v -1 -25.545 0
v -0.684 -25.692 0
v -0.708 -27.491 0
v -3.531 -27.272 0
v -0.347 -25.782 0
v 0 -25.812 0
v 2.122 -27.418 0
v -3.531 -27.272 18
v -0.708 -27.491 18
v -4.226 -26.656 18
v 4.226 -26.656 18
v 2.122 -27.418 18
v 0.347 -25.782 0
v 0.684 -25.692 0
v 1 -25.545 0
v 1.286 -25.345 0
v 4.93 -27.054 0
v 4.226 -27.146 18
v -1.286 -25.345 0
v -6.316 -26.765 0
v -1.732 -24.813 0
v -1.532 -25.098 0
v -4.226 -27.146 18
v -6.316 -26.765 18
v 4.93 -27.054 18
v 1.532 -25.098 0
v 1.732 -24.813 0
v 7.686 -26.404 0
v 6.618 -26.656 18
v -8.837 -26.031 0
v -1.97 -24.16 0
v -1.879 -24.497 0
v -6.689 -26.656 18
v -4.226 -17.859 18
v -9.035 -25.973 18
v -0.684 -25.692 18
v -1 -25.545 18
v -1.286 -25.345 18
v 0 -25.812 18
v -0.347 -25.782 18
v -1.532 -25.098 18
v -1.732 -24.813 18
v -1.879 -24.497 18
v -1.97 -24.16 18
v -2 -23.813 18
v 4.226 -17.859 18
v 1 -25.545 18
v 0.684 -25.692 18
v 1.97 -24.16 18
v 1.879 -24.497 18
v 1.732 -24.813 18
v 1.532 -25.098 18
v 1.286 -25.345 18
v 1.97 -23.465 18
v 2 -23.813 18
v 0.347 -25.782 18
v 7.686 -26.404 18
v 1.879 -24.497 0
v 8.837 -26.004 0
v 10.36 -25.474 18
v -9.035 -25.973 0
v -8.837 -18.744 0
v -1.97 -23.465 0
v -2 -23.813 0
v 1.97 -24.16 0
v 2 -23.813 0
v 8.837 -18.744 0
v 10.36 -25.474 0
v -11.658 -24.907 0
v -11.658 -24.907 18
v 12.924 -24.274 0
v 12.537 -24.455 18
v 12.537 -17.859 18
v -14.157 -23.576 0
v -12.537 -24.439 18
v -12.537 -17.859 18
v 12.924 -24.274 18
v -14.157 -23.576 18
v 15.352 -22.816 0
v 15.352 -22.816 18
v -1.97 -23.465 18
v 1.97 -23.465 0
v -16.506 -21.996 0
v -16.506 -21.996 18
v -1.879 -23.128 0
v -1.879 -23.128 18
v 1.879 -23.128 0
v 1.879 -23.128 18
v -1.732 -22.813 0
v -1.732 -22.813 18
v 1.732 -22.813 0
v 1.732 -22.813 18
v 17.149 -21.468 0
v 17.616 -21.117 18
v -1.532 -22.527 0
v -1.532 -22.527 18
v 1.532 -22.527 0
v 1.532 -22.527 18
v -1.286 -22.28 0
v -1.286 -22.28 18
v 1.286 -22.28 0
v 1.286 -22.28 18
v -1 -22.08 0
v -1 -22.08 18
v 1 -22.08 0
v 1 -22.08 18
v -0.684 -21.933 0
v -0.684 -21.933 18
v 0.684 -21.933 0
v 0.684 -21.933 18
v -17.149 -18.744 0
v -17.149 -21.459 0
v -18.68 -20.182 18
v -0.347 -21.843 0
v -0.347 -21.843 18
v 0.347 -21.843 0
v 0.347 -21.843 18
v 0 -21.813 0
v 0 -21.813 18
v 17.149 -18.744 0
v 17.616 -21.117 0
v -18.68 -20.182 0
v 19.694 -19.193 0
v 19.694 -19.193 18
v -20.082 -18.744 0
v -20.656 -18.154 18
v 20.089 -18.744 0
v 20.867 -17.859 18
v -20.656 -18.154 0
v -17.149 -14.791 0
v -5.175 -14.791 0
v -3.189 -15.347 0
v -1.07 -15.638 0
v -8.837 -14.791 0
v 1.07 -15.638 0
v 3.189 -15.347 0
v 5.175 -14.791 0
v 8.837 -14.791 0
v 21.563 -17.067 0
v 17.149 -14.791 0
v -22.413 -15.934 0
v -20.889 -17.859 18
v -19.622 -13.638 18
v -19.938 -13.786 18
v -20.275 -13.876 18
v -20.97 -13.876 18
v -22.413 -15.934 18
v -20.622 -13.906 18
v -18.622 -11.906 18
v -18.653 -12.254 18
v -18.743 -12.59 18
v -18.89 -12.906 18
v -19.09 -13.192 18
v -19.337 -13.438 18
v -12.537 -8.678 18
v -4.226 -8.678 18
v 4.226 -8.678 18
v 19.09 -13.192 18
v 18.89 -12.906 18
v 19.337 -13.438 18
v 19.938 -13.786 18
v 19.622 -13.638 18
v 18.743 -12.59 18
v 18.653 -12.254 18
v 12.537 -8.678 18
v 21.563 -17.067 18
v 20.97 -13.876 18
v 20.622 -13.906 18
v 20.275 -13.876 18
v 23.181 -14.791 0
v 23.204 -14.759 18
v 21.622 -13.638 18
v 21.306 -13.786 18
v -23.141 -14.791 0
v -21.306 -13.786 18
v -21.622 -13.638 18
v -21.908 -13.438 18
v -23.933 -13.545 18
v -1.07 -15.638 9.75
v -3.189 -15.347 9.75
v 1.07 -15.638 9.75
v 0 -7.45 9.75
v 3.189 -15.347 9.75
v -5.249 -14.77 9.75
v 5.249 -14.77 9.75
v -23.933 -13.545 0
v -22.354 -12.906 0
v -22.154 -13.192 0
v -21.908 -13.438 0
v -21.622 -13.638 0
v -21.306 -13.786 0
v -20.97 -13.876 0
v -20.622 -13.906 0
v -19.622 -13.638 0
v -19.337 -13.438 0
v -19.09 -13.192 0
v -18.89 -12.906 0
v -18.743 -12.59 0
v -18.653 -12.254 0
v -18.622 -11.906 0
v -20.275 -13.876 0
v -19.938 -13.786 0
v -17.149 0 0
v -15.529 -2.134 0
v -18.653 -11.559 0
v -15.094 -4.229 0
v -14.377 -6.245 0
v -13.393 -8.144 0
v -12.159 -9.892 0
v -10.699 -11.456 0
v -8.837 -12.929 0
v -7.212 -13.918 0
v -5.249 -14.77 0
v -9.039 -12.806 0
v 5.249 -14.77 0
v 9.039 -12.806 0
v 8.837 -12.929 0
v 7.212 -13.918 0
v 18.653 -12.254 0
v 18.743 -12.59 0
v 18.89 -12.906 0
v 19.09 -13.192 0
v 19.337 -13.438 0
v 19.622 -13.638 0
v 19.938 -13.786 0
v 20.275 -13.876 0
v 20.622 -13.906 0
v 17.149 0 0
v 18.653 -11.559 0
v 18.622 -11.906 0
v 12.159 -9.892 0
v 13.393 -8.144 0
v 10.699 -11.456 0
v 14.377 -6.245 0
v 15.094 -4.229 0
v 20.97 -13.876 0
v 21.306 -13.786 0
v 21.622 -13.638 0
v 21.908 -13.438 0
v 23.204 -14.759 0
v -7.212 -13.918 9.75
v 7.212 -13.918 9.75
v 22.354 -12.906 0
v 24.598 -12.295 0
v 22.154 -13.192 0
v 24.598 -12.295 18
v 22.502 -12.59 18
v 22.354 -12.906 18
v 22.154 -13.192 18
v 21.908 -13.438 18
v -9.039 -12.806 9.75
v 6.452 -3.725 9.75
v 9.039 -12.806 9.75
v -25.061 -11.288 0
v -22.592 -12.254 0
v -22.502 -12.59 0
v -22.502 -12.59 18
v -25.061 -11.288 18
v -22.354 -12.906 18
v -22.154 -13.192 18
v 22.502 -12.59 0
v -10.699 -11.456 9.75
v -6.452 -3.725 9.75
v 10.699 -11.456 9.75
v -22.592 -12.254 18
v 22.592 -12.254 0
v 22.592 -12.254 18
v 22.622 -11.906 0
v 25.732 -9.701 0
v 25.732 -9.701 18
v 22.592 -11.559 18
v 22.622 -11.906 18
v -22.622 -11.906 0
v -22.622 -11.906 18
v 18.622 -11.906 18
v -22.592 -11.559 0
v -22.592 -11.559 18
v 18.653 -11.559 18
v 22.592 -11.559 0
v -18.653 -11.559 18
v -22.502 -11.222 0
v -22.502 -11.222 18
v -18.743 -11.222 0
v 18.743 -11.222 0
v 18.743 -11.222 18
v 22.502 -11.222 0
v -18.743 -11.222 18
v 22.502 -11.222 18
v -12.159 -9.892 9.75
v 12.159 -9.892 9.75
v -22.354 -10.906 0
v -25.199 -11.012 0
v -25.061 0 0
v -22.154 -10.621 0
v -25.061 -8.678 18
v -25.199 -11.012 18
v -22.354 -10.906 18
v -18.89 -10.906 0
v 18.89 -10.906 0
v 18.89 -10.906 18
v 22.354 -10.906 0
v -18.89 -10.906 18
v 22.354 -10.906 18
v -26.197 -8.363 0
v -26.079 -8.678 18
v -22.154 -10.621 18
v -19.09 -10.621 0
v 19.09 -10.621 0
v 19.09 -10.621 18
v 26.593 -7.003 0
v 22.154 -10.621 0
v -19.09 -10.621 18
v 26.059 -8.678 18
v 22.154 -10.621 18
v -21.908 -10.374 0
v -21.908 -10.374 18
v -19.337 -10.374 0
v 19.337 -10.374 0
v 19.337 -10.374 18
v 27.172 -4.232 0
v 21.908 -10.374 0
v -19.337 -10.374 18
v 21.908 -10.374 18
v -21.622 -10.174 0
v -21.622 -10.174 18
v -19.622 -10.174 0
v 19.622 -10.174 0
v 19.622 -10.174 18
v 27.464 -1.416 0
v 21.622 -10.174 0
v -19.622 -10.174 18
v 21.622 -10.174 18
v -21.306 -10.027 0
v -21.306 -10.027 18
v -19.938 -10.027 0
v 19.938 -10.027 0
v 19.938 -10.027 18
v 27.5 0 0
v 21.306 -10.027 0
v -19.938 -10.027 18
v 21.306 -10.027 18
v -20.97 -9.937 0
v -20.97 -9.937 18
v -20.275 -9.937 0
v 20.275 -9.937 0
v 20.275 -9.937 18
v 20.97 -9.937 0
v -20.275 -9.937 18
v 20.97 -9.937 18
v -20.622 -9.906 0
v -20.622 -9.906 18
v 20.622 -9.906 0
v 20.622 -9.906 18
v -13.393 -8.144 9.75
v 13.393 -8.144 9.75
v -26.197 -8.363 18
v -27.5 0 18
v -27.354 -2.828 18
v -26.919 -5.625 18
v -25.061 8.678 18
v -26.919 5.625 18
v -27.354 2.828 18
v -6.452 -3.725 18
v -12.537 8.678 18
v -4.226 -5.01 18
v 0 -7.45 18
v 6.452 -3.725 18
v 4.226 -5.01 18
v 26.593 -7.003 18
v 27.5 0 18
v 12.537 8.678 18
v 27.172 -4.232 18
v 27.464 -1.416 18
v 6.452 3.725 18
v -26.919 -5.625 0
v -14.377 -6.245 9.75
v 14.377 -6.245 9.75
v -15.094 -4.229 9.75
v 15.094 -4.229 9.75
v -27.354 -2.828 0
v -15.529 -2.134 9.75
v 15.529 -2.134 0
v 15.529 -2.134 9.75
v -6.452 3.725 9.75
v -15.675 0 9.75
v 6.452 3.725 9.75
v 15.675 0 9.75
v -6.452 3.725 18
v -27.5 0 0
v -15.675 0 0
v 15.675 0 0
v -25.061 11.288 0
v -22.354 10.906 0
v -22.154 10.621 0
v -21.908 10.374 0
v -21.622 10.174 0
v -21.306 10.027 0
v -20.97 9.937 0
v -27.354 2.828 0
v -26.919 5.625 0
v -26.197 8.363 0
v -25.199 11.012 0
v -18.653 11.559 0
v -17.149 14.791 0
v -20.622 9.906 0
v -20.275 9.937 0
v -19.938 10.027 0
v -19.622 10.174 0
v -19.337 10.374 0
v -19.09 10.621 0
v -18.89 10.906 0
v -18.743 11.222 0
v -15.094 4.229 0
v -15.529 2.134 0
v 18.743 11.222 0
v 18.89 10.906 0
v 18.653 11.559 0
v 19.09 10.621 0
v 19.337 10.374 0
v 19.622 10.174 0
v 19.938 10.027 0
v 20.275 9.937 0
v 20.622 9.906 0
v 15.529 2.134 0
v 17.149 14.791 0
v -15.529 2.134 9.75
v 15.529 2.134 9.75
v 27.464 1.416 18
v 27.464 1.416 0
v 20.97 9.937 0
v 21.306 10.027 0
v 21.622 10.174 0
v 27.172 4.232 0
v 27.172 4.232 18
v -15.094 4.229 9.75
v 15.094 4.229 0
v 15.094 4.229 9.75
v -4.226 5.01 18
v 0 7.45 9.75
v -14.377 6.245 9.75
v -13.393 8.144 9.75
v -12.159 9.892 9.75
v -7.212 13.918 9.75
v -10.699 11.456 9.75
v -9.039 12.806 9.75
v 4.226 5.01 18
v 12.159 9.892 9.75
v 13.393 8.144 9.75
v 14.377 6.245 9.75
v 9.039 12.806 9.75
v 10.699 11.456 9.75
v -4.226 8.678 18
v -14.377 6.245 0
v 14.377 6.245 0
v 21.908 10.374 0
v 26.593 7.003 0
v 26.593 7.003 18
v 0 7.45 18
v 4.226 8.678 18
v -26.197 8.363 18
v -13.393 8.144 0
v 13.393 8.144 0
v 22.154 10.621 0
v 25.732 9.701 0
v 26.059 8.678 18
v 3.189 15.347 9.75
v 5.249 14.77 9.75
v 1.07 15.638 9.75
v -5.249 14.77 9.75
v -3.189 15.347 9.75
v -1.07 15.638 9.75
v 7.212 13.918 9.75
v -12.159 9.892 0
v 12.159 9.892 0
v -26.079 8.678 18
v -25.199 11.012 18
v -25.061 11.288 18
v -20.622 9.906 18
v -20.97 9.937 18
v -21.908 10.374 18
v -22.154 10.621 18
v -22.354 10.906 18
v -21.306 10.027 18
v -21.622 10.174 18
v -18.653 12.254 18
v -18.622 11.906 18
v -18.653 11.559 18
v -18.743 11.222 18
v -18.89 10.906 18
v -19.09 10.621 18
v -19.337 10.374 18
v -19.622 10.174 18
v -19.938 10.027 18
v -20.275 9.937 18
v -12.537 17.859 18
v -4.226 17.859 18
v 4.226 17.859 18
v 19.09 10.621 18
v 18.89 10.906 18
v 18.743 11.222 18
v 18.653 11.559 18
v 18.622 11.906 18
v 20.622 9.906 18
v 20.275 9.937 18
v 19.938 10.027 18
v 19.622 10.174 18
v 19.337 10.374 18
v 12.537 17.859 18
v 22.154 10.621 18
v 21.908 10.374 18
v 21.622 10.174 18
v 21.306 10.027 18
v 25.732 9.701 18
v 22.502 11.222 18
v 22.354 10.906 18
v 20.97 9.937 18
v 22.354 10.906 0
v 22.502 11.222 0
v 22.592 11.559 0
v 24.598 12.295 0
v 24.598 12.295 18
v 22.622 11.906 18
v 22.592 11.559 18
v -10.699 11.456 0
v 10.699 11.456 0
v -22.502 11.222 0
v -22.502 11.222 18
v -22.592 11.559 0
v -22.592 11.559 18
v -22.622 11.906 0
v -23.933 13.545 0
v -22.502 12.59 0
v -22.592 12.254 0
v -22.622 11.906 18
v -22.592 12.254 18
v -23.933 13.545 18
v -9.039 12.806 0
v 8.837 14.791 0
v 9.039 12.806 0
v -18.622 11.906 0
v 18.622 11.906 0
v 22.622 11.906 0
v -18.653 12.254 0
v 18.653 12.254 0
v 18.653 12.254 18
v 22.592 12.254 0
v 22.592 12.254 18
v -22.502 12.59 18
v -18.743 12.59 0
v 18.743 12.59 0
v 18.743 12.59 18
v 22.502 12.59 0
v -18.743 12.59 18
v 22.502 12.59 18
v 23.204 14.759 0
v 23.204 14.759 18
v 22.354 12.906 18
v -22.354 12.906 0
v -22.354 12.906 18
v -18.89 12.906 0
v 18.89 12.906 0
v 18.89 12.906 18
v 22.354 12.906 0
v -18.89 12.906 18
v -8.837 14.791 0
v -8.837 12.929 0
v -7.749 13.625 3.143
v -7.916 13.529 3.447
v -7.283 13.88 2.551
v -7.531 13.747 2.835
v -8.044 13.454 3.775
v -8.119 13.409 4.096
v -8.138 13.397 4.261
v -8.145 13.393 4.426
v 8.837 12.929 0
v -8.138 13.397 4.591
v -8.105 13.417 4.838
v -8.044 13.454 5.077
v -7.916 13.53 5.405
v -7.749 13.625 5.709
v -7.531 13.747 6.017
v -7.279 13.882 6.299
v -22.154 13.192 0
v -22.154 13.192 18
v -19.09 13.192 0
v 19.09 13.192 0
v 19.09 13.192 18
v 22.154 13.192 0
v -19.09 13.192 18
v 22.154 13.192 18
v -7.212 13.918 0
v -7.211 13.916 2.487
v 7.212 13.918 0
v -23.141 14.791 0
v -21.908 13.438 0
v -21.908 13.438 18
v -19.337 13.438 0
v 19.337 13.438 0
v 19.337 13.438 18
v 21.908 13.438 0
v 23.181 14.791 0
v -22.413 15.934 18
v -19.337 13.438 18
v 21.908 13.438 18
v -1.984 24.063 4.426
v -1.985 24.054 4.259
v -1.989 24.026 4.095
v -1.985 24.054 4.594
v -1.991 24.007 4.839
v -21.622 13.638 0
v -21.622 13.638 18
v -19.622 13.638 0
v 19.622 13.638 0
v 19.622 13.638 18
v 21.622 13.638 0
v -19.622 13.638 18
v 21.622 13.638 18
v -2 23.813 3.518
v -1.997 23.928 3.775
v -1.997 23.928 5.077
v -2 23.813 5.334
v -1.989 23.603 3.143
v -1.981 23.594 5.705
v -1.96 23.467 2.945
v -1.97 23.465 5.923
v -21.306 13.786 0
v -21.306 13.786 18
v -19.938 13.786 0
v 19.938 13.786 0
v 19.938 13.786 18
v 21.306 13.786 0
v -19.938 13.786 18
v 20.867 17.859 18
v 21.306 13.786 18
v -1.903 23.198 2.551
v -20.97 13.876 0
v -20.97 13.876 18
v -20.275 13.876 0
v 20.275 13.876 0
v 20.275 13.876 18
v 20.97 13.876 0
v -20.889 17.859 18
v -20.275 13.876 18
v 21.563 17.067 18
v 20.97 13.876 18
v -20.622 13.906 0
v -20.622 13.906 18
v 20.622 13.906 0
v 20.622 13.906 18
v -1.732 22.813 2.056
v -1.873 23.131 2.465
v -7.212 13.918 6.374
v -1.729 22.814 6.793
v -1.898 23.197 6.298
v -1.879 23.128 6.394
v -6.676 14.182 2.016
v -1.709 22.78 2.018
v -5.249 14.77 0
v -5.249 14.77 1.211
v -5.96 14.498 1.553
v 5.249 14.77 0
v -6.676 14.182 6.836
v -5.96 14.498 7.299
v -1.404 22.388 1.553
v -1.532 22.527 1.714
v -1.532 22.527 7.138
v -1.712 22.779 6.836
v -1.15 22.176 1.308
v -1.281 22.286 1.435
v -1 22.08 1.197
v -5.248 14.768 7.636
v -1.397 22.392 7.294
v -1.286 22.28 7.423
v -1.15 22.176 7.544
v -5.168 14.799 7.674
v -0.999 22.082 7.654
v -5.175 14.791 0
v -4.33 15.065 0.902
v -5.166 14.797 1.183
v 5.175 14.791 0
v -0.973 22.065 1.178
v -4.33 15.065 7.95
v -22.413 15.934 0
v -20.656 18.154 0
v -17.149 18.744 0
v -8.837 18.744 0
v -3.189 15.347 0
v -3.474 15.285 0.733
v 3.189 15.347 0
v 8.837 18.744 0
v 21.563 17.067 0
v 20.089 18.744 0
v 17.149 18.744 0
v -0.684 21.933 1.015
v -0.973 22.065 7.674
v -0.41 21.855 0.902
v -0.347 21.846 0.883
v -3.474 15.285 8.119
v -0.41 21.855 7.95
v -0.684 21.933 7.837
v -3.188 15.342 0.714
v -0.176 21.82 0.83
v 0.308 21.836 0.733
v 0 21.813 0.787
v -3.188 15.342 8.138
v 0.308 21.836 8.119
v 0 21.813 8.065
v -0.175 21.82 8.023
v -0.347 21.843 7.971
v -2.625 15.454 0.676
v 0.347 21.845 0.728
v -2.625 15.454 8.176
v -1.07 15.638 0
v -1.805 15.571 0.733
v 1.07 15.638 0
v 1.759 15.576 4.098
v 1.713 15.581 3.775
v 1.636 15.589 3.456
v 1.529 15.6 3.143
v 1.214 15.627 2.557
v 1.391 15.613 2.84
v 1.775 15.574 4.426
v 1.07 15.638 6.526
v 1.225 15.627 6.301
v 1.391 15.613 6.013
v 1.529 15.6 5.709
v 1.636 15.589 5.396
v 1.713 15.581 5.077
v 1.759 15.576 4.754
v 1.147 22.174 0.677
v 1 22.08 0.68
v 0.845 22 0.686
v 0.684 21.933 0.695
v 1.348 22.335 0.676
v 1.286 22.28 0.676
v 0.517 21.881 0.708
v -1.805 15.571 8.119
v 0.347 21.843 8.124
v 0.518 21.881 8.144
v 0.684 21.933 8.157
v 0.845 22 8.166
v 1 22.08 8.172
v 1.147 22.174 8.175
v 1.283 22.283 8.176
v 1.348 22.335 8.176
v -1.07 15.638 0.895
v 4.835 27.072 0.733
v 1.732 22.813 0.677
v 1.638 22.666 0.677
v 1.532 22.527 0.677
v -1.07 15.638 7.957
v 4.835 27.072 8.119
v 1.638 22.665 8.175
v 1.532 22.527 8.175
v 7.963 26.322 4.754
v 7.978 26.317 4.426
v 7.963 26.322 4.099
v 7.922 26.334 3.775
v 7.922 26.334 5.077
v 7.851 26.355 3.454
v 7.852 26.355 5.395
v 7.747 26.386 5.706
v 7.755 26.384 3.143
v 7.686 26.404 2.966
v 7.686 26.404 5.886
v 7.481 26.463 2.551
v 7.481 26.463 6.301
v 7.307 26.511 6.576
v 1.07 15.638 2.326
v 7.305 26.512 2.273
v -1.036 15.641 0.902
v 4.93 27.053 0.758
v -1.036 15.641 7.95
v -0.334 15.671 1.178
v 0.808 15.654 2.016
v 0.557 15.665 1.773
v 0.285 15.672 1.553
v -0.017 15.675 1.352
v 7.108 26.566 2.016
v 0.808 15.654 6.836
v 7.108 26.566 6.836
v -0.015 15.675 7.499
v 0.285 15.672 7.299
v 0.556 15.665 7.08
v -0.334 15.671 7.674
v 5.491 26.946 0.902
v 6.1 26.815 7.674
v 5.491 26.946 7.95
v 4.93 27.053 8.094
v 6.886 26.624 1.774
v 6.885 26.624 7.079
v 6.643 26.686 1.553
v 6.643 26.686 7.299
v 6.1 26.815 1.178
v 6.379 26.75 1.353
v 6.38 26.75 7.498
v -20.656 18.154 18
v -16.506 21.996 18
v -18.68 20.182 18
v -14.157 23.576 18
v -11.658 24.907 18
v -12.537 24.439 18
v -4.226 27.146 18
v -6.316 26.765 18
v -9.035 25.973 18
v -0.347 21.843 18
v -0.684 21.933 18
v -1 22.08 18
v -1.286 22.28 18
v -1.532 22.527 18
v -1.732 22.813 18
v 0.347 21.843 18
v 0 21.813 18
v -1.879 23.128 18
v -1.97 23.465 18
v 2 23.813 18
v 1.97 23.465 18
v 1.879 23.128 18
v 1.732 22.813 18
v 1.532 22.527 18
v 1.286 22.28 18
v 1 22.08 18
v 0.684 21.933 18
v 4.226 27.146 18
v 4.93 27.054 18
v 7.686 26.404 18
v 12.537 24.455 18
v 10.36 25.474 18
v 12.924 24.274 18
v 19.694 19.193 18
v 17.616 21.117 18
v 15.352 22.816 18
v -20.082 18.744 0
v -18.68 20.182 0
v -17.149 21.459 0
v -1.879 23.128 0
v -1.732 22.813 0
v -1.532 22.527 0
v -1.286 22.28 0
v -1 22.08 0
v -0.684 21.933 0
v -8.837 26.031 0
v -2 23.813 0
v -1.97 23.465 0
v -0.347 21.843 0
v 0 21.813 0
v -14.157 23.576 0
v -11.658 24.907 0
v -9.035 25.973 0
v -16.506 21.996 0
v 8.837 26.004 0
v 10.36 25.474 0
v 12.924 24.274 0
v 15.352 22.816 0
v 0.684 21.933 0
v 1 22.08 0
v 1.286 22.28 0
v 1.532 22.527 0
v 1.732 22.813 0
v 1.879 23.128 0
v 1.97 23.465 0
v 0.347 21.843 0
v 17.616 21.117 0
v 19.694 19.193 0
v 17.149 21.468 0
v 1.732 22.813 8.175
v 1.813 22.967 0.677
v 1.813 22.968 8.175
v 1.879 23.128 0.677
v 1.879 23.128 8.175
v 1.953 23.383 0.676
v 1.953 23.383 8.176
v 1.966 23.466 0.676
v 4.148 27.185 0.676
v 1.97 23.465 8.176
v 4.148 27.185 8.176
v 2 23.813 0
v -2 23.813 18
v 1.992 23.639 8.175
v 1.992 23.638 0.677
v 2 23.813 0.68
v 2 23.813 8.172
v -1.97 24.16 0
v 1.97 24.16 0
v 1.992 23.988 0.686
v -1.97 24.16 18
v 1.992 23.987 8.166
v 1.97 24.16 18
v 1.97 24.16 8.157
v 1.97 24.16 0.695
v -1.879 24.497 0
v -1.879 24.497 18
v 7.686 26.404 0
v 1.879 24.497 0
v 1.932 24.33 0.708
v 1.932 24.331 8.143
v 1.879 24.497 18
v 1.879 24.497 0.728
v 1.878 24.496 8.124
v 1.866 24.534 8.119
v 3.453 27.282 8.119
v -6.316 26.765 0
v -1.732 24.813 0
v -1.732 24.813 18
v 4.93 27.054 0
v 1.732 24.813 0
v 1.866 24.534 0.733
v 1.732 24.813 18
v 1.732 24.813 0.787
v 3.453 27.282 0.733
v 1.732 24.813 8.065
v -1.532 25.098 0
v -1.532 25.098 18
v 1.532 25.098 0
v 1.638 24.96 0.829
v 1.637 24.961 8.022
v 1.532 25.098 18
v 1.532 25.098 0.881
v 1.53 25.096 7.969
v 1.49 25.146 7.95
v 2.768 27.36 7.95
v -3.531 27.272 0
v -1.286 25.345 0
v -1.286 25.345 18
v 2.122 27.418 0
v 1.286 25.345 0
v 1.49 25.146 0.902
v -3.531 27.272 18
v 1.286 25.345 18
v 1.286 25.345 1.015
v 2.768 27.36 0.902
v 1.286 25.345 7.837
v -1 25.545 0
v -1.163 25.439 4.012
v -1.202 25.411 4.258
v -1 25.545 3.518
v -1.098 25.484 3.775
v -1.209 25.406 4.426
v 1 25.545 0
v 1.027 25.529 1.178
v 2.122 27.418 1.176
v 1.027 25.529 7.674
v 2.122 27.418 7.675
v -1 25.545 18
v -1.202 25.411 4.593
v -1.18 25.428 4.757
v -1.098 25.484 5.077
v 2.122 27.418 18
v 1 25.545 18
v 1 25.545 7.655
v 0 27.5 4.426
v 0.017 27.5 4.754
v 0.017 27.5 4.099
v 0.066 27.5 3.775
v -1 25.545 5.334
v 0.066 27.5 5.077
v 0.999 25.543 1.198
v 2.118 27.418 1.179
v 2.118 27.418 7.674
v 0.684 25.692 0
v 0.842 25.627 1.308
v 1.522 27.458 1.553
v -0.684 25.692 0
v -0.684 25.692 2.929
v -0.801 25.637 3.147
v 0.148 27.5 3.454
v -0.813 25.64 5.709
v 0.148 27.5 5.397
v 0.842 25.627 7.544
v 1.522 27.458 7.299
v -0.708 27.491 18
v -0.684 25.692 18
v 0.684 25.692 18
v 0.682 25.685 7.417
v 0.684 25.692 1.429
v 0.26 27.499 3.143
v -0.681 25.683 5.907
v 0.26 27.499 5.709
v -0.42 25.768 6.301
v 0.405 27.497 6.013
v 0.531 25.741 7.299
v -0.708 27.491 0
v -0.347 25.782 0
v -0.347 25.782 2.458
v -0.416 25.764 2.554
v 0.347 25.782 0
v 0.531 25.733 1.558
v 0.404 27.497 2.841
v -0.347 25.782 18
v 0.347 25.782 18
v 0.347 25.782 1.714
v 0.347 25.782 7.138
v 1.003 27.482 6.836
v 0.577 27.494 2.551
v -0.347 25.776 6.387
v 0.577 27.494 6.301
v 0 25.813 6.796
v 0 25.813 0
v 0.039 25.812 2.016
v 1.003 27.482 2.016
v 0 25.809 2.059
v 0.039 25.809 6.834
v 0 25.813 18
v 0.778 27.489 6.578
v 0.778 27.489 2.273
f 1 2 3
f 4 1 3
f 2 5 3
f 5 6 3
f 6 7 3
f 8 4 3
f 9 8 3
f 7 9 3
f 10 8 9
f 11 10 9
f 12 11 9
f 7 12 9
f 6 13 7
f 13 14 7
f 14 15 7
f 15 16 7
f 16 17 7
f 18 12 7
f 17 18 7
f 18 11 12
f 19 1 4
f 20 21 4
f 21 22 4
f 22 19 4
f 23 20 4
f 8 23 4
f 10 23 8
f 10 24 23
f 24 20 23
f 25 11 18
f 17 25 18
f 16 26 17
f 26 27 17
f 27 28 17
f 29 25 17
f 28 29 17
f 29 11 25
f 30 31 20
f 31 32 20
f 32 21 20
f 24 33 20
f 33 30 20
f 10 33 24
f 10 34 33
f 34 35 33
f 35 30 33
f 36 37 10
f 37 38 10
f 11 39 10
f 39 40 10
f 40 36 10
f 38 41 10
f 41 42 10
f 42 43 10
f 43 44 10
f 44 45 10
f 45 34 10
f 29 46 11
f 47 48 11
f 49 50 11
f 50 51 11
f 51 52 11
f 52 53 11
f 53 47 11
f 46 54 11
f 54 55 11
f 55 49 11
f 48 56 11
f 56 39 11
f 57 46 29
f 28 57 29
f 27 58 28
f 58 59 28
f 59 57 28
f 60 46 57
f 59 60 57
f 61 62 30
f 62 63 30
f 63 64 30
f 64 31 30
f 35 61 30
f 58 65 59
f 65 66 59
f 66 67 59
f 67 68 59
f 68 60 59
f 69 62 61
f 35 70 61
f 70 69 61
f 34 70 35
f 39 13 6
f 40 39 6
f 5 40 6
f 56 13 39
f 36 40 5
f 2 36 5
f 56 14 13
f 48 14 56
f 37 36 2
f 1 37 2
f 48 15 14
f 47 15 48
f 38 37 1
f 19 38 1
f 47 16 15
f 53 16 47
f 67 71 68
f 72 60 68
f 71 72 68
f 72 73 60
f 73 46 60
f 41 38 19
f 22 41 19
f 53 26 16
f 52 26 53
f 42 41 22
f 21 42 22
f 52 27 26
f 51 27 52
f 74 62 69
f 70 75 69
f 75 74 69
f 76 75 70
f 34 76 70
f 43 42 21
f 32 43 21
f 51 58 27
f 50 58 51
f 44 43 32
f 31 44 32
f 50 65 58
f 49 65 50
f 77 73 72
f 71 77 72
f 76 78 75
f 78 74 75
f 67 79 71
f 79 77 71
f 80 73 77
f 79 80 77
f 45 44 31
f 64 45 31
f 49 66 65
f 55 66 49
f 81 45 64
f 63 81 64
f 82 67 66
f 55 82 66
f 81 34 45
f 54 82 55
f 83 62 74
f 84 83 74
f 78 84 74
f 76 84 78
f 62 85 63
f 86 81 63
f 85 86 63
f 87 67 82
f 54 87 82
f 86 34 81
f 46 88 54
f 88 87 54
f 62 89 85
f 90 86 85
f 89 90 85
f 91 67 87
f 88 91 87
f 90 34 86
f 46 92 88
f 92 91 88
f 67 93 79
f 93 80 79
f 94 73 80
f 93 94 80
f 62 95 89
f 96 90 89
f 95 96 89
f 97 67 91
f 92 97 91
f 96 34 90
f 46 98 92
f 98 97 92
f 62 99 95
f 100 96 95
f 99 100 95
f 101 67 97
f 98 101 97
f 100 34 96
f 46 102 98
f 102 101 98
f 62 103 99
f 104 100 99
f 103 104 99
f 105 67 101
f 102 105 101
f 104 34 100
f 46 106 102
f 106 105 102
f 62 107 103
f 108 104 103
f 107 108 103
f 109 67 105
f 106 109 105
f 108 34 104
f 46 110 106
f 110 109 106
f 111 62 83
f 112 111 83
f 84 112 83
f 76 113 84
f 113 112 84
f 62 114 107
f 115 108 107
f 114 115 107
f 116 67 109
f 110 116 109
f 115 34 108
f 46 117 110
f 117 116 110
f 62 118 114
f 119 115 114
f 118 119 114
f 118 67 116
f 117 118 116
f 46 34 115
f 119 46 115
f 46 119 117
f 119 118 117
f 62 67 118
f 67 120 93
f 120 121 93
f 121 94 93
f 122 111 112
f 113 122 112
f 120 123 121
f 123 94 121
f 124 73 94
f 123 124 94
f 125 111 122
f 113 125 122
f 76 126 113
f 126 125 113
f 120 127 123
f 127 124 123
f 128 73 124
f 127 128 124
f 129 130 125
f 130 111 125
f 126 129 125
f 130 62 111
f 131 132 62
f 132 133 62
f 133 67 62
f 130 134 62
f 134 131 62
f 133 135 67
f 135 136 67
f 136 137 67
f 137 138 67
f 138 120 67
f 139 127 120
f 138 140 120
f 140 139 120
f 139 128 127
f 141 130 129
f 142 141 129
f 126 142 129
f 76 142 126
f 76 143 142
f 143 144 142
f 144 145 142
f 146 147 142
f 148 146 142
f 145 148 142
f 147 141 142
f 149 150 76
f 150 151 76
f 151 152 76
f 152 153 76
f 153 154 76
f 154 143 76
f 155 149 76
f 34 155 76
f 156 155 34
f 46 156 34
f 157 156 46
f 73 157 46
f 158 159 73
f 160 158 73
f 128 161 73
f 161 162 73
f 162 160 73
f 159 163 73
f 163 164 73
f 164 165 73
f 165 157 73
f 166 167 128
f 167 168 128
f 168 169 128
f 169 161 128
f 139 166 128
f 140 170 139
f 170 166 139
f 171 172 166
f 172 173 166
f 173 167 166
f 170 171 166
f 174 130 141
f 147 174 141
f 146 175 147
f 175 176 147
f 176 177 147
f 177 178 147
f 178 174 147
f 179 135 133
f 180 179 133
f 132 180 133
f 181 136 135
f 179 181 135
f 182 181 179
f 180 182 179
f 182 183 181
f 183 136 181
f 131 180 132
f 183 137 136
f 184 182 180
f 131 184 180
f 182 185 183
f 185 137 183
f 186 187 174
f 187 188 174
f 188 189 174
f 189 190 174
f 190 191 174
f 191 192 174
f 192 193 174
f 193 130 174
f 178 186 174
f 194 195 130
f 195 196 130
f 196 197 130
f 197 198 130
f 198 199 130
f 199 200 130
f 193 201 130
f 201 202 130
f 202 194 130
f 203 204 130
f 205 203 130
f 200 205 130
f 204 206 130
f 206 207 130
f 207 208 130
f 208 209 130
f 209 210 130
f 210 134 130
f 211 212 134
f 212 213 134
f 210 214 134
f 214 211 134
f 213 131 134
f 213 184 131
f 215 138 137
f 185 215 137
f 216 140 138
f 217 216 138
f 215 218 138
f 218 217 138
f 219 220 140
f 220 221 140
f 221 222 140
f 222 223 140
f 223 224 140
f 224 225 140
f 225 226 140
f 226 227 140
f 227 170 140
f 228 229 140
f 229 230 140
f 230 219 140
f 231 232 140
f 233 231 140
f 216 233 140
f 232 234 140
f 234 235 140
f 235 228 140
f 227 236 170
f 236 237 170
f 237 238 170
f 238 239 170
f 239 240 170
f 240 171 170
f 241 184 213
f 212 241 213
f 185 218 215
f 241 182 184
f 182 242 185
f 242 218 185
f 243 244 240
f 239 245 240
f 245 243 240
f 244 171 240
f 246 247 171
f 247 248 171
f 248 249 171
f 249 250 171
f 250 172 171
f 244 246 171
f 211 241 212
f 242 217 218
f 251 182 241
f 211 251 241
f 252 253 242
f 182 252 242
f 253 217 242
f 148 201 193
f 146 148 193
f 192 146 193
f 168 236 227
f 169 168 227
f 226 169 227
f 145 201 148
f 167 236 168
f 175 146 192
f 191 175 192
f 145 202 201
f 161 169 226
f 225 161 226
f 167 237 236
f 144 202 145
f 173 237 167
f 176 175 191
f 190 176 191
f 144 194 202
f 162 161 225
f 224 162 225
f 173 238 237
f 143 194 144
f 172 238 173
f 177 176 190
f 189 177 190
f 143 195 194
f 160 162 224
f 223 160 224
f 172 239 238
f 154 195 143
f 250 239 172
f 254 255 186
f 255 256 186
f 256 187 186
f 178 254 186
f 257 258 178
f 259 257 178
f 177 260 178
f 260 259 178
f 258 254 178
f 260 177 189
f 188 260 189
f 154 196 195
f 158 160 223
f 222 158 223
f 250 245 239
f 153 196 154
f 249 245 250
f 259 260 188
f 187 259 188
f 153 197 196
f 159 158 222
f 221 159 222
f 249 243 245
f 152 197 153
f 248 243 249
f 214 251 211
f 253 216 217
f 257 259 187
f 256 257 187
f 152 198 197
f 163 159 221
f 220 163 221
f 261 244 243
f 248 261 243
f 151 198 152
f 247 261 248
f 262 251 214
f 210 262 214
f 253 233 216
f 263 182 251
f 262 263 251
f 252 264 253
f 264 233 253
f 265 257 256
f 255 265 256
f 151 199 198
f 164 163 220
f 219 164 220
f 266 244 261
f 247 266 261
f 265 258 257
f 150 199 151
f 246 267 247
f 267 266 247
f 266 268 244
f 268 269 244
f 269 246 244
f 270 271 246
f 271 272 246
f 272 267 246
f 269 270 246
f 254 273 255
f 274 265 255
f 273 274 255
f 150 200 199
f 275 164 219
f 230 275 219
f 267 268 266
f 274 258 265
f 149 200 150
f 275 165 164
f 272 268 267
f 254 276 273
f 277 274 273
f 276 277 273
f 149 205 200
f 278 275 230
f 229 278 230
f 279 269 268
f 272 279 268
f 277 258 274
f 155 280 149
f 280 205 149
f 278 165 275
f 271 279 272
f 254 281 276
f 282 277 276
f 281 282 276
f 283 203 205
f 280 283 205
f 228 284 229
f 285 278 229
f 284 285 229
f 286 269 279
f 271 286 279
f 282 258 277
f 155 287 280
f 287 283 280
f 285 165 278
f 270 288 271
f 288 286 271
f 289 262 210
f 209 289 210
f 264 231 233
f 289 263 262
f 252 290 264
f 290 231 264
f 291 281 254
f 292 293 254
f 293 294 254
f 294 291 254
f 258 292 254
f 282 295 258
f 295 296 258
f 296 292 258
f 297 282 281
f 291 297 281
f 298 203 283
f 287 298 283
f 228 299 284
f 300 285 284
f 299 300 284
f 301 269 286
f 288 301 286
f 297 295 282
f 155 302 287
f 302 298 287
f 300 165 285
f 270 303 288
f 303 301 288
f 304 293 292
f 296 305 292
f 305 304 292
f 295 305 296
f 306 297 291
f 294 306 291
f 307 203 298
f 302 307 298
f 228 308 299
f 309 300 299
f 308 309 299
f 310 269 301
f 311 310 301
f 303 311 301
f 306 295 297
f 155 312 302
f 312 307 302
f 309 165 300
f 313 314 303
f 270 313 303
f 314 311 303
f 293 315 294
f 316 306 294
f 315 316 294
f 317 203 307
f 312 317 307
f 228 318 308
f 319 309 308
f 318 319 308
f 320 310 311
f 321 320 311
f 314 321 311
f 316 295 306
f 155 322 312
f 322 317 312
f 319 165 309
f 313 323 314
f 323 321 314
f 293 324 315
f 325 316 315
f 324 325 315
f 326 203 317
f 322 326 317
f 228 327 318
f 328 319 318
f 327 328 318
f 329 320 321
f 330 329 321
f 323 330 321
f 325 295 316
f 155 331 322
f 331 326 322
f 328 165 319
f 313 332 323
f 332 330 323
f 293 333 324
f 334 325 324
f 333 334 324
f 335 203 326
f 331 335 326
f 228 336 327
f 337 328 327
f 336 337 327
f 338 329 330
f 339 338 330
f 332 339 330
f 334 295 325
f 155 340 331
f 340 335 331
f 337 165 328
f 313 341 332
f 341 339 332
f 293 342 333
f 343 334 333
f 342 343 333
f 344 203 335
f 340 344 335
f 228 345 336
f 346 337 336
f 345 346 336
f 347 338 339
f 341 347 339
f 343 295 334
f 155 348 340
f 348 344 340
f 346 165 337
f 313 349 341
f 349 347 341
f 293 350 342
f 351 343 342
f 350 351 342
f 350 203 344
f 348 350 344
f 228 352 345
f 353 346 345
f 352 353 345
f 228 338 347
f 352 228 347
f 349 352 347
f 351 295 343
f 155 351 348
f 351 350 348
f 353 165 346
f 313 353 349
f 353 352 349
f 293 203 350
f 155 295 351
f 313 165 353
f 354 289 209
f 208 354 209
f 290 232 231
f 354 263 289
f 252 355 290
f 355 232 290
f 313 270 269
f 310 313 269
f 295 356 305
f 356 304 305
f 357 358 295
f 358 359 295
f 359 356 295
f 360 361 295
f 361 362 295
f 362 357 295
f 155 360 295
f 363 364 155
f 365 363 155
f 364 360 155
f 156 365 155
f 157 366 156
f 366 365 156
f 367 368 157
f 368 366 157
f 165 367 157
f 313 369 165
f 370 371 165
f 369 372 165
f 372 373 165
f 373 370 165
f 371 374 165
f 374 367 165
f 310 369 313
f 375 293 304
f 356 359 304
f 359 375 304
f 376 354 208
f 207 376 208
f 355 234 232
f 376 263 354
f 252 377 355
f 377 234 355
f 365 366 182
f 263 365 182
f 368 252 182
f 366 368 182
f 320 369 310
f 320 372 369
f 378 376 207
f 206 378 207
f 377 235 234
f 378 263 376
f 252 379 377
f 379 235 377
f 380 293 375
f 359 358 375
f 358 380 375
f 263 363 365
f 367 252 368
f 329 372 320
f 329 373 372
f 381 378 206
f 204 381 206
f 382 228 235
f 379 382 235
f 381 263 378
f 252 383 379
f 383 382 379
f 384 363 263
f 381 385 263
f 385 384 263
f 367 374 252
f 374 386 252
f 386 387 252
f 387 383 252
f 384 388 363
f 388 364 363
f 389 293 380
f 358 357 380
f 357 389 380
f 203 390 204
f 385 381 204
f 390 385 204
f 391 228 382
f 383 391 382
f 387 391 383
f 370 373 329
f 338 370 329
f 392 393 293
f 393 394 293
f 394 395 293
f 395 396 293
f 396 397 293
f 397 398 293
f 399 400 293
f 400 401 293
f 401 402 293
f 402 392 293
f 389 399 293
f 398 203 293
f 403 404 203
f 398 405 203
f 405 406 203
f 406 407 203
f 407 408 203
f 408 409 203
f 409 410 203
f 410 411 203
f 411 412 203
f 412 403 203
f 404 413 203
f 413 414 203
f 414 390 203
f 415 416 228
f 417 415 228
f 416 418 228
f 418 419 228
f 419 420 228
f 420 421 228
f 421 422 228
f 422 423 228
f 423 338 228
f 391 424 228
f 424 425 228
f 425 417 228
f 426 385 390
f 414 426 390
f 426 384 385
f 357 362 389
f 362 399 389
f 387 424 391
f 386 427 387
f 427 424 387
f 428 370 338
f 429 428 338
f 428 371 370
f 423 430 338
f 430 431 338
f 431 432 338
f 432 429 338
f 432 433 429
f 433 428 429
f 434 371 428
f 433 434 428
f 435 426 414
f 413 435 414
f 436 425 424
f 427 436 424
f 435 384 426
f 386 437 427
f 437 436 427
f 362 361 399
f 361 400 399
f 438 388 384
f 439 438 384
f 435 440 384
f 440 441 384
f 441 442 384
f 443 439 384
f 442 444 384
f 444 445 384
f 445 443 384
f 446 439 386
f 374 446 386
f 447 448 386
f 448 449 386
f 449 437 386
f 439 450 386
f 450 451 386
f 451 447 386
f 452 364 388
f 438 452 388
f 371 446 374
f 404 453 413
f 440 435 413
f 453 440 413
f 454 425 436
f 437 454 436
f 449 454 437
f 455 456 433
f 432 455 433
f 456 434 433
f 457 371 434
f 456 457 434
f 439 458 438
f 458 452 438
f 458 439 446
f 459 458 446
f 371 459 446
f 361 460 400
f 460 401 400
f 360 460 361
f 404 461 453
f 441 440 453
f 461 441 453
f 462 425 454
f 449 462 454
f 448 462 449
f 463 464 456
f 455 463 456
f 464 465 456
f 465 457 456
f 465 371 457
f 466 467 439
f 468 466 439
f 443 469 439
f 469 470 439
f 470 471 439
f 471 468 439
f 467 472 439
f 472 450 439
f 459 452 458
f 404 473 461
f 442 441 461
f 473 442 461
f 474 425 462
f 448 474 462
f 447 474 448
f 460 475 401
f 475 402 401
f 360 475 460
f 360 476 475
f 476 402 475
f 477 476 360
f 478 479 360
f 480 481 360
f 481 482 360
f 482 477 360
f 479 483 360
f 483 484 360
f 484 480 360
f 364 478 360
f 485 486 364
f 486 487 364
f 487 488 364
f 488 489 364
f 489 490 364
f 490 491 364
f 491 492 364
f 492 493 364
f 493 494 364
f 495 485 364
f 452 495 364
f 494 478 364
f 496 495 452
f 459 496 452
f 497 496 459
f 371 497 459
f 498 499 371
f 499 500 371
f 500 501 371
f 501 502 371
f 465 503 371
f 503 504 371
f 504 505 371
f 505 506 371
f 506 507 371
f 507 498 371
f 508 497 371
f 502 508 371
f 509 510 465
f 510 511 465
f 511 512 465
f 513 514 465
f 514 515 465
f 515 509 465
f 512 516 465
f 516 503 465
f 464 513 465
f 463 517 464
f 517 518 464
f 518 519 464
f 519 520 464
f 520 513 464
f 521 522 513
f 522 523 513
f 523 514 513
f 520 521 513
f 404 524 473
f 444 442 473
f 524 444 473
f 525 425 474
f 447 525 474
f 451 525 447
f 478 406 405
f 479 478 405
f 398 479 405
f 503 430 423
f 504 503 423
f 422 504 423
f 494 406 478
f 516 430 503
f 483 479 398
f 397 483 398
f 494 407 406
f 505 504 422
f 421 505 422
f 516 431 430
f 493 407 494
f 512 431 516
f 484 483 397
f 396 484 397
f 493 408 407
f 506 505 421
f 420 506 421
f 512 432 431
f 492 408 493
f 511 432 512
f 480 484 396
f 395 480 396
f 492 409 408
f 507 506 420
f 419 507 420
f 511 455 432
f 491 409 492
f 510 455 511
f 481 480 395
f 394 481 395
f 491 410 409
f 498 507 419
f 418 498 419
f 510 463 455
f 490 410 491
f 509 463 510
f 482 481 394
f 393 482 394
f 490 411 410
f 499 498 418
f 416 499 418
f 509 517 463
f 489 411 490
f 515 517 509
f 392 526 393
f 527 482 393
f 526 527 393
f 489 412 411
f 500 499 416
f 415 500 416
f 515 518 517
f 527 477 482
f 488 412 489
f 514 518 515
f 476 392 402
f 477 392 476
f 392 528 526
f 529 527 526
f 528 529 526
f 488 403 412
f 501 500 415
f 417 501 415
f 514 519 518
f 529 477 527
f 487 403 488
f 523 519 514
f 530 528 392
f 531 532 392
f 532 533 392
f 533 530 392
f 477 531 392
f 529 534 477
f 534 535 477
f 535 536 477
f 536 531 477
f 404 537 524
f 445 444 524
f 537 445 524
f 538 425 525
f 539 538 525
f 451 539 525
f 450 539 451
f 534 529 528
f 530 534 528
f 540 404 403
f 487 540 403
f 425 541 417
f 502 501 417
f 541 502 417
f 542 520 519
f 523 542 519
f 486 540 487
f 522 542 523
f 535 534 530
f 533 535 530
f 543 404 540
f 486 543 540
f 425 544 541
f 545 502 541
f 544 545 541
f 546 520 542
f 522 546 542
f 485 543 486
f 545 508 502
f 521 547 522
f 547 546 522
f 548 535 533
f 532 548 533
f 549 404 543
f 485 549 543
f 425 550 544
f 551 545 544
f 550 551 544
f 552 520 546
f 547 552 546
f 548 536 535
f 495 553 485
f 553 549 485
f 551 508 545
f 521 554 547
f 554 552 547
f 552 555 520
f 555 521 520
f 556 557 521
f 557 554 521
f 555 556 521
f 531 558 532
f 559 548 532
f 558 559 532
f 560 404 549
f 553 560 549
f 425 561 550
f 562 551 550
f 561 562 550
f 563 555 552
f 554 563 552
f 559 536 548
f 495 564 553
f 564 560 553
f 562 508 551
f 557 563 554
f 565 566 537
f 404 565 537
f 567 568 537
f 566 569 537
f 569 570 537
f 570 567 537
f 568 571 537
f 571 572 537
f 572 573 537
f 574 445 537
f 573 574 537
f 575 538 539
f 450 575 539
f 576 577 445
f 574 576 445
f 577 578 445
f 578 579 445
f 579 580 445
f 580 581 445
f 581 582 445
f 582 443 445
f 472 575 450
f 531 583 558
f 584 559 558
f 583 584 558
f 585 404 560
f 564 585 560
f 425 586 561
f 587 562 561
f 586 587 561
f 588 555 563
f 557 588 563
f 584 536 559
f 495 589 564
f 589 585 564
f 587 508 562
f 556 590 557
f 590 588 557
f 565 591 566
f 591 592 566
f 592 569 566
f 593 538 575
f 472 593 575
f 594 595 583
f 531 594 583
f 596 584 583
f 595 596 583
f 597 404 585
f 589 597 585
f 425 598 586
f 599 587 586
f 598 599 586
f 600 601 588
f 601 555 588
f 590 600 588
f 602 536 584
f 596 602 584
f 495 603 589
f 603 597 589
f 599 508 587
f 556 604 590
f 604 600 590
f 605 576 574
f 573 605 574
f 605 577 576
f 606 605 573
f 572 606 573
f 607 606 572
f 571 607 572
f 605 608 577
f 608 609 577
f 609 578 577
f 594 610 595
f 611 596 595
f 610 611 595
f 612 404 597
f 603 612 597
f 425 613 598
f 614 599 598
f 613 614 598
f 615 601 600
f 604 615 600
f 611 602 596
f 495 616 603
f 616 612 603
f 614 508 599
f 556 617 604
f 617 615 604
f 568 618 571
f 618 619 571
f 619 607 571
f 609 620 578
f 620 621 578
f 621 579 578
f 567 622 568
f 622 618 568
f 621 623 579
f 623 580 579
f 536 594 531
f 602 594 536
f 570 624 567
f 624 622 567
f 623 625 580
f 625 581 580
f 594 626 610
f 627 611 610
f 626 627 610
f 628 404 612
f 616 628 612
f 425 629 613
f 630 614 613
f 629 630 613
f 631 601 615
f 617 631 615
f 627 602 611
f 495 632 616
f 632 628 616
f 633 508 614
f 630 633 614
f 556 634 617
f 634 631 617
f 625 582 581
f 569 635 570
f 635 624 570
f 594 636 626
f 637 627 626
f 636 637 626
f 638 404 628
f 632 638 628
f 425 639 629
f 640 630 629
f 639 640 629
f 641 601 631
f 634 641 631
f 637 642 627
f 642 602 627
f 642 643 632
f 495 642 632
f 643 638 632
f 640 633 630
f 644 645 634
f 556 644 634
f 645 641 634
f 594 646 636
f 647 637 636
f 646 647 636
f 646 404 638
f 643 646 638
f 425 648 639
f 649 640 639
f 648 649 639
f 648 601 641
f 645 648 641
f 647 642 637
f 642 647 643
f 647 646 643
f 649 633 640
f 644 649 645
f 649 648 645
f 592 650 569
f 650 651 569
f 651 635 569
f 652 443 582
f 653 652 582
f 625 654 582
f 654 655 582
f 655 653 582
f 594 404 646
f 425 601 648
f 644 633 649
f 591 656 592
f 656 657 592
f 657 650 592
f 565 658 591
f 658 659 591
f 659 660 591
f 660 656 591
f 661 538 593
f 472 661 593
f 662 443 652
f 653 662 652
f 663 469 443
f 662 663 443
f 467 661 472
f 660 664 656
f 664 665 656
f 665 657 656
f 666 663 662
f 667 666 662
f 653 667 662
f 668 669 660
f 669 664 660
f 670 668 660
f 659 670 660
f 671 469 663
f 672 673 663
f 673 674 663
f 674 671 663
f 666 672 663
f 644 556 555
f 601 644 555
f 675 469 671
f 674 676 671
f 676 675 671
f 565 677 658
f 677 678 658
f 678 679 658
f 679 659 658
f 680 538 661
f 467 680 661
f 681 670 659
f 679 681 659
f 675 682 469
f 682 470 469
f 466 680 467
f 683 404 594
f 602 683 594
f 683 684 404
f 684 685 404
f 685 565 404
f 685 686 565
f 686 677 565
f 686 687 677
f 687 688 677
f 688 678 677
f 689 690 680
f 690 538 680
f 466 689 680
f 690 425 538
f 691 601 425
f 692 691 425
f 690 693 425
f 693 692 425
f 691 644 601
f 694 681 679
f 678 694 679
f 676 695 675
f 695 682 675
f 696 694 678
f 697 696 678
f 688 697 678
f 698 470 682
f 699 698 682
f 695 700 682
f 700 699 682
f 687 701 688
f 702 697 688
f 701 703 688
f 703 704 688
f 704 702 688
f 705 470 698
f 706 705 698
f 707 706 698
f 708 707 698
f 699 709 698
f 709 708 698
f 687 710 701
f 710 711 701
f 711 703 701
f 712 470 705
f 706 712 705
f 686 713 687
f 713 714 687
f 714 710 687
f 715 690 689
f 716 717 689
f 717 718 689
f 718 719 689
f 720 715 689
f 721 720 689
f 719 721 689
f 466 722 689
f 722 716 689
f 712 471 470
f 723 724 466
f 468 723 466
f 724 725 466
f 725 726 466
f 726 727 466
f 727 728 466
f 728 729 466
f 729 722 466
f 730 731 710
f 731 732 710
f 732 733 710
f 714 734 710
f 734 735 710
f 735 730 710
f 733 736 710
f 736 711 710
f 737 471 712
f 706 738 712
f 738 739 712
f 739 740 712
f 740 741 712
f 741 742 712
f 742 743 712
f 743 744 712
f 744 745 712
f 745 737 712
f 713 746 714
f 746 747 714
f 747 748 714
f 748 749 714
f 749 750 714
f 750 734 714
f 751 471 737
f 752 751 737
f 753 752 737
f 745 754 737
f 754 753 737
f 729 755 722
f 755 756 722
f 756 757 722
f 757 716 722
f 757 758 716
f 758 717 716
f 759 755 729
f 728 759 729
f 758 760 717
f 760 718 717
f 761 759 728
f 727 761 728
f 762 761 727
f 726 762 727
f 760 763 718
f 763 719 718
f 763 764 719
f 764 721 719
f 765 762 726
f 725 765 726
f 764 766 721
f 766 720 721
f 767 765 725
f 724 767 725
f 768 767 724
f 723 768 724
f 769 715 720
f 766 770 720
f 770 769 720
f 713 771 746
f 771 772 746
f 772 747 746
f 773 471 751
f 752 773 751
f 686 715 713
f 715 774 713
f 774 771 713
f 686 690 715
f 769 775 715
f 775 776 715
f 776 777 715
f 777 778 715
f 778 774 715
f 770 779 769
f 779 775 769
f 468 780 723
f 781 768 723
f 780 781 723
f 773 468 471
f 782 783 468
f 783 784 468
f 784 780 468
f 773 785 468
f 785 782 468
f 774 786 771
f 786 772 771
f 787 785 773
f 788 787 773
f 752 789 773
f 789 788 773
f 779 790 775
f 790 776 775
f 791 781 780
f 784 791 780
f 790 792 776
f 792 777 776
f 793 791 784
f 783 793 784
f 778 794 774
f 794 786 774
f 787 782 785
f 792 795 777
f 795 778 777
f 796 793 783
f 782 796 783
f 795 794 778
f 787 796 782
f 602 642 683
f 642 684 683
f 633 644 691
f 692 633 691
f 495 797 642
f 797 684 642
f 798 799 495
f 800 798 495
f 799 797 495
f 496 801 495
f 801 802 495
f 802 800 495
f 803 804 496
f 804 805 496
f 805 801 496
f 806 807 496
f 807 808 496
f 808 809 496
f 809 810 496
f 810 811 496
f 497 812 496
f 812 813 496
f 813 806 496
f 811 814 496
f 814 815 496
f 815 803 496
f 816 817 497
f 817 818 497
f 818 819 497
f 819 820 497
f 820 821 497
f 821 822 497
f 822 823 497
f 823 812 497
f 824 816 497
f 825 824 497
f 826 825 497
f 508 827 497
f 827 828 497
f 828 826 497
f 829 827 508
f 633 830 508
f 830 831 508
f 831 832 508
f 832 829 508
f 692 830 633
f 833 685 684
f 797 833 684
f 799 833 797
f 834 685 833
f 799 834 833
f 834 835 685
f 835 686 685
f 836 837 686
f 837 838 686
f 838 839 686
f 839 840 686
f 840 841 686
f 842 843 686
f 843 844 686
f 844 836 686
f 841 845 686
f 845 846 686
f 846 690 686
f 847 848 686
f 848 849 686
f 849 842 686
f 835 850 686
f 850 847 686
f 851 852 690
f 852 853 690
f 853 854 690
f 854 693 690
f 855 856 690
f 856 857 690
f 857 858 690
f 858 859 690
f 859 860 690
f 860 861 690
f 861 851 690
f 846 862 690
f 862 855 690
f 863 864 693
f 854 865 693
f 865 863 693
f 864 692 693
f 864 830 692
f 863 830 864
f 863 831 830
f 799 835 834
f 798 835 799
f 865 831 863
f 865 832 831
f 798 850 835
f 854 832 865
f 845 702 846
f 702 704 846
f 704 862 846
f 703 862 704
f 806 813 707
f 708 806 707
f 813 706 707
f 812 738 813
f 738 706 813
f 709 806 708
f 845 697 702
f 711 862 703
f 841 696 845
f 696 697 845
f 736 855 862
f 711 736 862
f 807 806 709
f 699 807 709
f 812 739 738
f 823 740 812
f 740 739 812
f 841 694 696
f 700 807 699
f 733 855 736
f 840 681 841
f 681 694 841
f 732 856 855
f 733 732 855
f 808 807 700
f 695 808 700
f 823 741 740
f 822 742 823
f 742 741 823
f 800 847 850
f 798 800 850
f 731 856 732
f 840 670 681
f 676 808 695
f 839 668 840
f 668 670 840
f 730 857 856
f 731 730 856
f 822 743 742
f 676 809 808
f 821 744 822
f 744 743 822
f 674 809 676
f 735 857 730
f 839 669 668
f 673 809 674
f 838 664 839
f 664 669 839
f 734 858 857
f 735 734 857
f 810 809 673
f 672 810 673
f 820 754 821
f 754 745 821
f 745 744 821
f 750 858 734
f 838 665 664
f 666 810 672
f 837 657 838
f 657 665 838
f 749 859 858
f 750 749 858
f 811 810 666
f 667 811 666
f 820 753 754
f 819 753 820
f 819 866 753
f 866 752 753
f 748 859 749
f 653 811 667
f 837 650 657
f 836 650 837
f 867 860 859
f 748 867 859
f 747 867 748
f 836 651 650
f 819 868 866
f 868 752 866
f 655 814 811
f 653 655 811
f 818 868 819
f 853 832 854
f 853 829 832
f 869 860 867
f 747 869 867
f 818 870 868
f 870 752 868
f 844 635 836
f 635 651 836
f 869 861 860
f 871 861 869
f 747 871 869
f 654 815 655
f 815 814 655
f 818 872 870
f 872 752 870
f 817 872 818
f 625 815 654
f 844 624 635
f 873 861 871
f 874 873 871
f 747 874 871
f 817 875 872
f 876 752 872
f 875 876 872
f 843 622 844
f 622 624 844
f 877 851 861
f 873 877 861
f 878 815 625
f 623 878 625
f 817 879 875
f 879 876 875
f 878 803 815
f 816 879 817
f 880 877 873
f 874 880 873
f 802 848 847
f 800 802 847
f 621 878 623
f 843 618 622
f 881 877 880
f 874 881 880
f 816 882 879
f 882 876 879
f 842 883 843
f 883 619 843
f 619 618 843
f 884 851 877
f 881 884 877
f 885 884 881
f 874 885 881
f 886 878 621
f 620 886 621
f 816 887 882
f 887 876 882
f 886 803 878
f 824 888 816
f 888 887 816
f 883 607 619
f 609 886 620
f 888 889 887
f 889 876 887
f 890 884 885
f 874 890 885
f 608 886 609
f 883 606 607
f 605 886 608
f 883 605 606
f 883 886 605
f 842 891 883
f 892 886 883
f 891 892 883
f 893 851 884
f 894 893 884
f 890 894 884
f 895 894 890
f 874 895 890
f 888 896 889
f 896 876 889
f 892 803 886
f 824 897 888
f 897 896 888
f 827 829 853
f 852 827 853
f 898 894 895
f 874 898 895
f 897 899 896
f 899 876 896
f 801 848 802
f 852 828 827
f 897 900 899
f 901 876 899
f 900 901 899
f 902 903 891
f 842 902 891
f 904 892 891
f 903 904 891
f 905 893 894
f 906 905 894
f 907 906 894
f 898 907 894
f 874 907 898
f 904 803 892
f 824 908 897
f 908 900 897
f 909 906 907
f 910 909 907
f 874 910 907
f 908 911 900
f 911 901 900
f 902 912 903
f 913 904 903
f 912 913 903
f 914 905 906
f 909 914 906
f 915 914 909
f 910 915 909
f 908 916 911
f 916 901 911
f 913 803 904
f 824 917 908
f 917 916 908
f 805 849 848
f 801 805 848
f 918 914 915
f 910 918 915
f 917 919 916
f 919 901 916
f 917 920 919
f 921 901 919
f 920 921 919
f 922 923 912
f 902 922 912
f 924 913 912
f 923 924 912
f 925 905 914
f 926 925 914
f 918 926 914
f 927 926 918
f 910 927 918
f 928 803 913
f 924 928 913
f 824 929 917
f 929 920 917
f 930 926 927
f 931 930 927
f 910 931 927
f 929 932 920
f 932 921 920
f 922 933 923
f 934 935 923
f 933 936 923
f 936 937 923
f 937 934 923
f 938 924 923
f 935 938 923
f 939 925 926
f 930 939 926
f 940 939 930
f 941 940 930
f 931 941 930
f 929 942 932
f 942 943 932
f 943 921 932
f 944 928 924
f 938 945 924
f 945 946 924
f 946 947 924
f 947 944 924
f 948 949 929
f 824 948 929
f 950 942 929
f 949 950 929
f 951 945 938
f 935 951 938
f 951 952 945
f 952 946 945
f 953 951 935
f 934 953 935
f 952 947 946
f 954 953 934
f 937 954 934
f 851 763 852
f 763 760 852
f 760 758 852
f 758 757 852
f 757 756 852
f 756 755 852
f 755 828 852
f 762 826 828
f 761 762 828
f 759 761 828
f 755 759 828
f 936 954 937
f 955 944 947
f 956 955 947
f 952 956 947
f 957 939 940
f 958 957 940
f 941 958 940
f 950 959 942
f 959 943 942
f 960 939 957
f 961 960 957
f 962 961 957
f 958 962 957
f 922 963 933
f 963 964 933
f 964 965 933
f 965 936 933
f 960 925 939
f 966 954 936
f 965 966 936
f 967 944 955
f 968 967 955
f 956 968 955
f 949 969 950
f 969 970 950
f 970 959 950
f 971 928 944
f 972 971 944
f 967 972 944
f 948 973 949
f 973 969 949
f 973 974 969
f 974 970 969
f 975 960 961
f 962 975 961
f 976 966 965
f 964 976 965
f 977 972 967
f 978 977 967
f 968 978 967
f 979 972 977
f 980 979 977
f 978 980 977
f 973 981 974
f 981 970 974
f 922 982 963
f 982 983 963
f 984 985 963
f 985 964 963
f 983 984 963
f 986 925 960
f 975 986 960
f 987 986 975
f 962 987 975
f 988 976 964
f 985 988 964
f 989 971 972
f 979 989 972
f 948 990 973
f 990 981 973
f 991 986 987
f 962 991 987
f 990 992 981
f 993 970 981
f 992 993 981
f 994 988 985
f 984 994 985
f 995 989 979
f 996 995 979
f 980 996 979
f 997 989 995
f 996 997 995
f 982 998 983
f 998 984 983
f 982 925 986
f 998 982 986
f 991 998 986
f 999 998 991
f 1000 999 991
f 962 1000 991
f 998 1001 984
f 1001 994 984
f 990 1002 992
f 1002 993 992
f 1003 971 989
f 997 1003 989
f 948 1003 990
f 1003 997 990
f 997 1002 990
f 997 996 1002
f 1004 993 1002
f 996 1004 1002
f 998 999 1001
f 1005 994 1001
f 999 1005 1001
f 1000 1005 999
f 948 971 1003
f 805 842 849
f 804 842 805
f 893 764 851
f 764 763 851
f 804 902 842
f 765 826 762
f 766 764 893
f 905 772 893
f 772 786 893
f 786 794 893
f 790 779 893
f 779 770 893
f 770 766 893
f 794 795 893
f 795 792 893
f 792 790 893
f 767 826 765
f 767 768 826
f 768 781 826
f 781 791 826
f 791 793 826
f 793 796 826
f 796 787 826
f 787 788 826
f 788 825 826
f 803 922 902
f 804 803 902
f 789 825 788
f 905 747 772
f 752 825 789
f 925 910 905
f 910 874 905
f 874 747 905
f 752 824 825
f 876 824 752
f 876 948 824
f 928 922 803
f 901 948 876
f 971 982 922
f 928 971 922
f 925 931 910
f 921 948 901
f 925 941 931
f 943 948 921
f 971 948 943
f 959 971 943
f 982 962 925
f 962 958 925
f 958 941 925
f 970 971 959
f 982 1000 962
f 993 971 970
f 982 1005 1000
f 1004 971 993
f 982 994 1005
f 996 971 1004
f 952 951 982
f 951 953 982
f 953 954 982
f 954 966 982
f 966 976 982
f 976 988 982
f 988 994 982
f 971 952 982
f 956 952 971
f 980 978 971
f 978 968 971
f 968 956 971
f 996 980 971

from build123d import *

# Parameters (mm, degrees)
SKETCH1_R           = 27.5
SKETCH1_R_2         = 2
BOSS_EXTRUDE1_DEPTH = 18
CUT_EXTRUDE1_DEPTH  = 19
SKETCH3_R           = 15.675
CUT_EXTRUDE2_DEPTH  = 9.75
SKETCH5_R           = 3.75
CUT_EXTRUDE4_DEPTH  = 32.114098604


with BuildPart() as part:
    # Sketch1 → Boss-Extrude1 (new body)
    with BuildSketch(Plane.XY):
        Circle(SKETCH1_R)
        with Locations((0, 23.8125)):
            Circle(SKETCH1_R_2, mode=Mode.SUBTRACT)
        with Locations((20.622229928, 11.90625)):
            Circle(SKETCH1_R_2, mode=Mode.SUBTRACT)
        with Locations((20.622229928, -11.90625)):
            Circle(SKETCH1_R_2, mode=Mode.SUBTRACT)
        with Locations((0, -23.8125)):
            Circle(SKETCH1_R_2, mode=Mode.SUBTRACT)
        with Locations((-20.622229928, -11.90625)):
            Circle(SKETCH1_R_2, mode=Mode.SUBTRACT)
        with Locations((-20.622229928, 11.90625)):
            Circle(SKETCH1_R_2, mode=Mode.SUBTRACT)
    extrude(amount=BOSS_EXTRUDE1_DEPTH)

    # Sketch2 → Cut-Extrude1 (cut, through all)
    with BuildSketch(Plane(origin=(0, 0, 0), x_dir=(-1, 0, 0), z_dir=(0, 0, -1))):
        Polygon((0, 7.449665993), (-6.4516, 3.724832997), (-6.4516, -3.724832997), (0, -7.449665993), (6.4516, -3.724832997), (6.4516, 3.724832997), align=None)
    extrude(amount=-CUT_EXTRUDE1_DEPTH, mode=Mode.SUBTRACT)

    # Sketch3 → Cut-Extrude2 (cut)
    with BuildSketch(Plane(origin=(0, 0, 0), x_dir=(-1, 0, 0), z_dir=(0, 0, -1))):
        Circle(SKETCH3_R)
    extrude(amount=-CUT_EXTRUDE2_DEPTH, mode=Mode.SUBTRACT)

    # Sketch5 → Cut-Extrude4 (cut, through all)
    with BuildSketch(Plane(origin=(0.225707929, 7.31935346, 0), x_dir=(0.866025404, -0.5, 0), z_dir=(-0.5, -0.866025404, 0))):
        with Locations((-6.535792071, 4.426010426)):
            Circle(SKETCH5_R)
    extrude(amount=-CUT_EXTRUDE4_DEPTH, mode=Mode.SUBTRACT)


solid = part.part
